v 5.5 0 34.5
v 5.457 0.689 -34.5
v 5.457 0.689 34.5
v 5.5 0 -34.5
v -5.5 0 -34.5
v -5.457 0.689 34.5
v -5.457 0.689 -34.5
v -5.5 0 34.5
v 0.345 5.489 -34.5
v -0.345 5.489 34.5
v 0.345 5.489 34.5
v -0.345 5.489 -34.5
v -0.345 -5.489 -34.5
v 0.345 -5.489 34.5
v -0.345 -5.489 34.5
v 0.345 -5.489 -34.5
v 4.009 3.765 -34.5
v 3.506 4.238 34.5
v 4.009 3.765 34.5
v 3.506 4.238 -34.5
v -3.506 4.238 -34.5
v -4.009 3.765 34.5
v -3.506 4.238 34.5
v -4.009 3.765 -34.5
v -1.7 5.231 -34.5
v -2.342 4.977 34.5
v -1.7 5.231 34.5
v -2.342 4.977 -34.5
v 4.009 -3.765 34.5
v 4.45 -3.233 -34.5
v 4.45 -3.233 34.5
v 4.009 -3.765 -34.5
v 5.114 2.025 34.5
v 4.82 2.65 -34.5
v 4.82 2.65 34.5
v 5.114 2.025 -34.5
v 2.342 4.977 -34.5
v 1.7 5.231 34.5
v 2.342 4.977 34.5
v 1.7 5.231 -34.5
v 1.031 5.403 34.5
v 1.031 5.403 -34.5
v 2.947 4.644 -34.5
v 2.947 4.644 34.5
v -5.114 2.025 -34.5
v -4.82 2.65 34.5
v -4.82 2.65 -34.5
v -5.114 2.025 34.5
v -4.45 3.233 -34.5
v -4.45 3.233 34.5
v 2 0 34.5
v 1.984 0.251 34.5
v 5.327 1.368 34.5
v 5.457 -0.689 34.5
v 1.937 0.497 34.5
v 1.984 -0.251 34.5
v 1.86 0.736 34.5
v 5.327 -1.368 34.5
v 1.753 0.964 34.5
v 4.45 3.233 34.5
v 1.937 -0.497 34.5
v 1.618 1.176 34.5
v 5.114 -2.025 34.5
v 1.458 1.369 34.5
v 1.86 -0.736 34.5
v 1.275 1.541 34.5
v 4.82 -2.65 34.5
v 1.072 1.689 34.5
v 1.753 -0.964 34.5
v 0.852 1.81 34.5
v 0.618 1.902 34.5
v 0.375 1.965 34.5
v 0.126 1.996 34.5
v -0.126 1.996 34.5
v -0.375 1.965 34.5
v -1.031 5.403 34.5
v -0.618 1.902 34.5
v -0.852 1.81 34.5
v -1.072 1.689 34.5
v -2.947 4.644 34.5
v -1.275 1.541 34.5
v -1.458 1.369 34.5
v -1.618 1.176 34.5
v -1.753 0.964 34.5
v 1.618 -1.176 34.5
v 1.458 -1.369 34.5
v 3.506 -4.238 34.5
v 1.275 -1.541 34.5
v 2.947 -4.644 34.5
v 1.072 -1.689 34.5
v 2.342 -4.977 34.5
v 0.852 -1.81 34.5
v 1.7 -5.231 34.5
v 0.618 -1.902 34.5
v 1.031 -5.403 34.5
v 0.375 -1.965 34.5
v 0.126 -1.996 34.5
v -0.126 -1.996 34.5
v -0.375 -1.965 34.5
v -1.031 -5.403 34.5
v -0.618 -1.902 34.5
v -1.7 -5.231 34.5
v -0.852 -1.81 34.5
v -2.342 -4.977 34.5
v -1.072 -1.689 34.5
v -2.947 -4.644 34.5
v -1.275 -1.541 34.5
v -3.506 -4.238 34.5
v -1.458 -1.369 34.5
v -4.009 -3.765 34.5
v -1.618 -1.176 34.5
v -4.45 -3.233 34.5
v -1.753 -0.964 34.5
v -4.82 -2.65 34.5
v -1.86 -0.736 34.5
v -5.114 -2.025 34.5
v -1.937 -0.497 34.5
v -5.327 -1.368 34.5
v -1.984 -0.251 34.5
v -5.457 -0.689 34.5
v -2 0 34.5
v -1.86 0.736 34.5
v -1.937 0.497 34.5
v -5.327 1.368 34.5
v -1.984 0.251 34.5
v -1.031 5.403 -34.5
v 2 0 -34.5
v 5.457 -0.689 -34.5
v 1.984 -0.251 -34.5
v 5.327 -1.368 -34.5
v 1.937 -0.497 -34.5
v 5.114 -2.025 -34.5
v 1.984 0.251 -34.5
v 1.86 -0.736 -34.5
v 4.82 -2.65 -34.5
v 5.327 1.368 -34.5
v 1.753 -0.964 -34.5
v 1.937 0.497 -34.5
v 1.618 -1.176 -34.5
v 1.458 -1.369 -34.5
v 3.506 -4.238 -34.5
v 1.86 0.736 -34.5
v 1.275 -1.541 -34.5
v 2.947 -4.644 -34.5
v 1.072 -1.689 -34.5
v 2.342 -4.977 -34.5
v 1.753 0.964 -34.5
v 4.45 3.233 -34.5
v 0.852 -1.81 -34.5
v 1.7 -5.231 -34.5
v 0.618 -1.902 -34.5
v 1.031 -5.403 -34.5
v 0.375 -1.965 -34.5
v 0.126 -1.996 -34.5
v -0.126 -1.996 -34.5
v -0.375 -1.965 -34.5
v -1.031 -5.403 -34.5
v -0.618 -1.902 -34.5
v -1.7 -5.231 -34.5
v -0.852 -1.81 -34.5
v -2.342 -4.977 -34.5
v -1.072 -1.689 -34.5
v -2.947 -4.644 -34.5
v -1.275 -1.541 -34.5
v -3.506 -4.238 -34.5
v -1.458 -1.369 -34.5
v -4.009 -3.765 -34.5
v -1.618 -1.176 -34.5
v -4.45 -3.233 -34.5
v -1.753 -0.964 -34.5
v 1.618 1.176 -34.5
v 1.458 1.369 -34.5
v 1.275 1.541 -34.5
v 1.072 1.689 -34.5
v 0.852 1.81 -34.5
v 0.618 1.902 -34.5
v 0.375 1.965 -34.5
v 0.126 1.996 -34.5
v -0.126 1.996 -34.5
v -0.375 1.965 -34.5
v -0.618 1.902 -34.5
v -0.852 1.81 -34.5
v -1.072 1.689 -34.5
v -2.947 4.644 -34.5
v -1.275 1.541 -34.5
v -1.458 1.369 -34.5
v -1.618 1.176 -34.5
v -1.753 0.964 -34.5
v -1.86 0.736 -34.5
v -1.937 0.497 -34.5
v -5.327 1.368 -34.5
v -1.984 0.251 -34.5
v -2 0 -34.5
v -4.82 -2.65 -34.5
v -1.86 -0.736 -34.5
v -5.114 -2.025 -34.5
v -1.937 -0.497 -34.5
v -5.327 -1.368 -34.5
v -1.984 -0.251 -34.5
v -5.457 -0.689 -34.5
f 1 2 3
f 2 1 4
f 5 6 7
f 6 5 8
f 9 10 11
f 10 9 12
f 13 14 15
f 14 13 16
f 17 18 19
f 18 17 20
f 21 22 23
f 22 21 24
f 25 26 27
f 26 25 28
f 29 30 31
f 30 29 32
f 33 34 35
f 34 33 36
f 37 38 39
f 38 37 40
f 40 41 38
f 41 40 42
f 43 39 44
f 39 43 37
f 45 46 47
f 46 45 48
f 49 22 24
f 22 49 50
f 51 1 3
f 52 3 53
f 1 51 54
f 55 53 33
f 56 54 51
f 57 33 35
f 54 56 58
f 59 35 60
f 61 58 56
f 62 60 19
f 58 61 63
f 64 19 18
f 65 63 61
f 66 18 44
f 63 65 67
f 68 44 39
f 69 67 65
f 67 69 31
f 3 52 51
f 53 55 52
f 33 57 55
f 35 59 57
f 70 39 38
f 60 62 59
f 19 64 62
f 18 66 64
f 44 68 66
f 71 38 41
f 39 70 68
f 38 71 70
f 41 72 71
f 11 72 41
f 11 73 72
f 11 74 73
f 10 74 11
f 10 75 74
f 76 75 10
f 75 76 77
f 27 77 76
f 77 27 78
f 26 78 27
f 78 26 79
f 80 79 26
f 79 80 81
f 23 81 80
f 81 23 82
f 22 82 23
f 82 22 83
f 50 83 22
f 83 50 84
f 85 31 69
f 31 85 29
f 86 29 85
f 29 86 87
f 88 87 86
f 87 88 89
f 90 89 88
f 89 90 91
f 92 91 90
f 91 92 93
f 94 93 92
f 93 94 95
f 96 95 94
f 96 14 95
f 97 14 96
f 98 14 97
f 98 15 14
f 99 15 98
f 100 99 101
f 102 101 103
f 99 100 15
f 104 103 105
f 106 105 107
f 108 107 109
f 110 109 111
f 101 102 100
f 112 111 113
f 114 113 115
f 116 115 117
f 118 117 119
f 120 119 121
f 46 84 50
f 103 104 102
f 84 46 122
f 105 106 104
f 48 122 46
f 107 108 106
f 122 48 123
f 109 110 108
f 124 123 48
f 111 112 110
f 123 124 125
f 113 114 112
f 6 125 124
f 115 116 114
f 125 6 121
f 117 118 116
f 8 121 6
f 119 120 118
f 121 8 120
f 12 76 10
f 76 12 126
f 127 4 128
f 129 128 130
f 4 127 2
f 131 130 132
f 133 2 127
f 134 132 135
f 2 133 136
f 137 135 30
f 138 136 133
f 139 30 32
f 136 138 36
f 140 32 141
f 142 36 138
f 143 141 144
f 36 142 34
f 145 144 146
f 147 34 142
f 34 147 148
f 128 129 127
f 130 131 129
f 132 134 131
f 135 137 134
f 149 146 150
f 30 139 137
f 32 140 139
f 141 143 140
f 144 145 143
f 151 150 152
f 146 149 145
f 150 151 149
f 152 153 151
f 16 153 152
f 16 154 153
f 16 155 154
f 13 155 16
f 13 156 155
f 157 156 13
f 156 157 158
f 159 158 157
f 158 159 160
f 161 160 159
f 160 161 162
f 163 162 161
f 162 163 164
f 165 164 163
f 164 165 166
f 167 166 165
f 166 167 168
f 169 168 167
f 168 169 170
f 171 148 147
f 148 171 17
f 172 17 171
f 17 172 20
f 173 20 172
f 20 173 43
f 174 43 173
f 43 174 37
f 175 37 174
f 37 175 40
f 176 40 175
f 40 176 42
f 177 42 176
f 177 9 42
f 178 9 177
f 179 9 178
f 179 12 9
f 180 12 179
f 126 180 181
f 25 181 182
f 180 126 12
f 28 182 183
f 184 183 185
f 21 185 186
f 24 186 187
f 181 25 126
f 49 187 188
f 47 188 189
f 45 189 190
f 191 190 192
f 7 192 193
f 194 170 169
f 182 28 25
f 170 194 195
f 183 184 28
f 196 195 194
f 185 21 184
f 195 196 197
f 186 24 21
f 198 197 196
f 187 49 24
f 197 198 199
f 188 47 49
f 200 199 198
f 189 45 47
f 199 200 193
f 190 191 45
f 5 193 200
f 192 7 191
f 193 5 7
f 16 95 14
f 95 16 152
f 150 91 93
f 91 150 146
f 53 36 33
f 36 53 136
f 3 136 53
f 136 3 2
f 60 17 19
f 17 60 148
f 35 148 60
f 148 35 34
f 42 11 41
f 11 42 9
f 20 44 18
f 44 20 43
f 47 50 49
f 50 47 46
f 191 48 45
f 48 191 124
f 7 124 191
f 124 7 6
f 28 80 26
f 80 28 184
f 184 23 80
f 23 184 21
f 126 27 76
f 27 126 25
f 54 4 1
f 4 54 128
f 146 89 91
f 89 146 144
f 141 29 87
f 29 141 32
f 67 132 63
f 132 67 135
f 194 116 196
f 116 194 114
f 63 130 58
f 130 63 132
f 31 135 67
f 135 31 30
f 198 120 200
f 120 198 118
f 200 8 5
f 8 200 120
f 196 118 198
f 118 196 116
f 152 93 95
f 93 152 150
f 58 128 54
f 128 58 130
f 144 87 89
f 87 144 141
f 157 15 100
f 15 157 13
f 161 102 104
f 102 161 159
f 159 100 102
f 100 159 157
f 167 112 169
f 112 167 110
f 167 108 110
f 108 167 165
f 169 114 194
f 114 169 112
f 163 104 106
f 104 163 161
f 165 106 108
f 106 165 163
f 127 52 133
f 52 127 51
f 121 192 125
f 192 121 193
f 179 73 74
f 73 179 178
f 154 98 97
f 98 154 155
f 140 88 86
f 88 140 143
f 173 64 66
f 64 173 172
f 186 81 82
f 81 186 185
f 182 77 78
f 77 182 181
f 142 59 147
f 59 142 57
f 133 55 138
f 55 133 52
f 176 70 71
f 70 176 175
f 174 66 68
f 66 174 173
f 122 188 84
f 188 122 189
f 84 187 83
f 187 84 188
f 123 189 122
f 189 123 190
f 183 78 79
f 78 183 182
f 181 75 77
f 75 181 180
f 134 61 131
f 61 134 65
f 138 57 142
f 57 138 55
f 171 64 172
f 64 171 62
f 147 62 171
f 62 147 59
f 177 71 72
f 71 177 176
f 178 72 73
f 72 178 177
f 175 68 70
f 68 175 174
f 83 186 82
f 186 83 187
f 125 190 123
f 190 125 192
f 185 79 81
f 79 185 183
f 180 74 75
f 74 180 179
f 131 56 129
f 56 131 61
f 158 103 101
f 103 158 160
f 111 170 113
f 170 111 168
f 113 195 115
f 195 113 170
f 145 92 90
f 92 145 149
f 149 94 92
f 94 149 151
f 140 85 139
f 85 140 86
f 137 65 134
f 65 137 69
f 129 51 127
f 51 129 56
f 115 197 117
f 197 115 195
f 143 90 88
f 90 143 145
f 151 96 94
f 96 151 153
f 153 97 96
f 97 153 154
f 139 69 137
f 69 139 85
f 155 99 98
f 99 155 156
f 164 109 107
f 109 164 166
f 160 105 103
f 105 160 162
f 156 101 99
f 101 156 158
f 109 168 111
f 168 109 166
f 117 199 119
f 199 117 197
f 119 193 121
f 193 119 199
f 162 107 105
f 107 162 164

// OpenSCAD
$fn = 50;


difference() {
	union() {
		translate(v = [0, 0, -34.5000000000]) {
			cylinder(h = 69, r = 5.5000000000);
		}
	}
	union() {
		translate(v = [0, 0, -100.0000000000]) {
			cylinder(h = 200, r = 2);
		}
	}
}
